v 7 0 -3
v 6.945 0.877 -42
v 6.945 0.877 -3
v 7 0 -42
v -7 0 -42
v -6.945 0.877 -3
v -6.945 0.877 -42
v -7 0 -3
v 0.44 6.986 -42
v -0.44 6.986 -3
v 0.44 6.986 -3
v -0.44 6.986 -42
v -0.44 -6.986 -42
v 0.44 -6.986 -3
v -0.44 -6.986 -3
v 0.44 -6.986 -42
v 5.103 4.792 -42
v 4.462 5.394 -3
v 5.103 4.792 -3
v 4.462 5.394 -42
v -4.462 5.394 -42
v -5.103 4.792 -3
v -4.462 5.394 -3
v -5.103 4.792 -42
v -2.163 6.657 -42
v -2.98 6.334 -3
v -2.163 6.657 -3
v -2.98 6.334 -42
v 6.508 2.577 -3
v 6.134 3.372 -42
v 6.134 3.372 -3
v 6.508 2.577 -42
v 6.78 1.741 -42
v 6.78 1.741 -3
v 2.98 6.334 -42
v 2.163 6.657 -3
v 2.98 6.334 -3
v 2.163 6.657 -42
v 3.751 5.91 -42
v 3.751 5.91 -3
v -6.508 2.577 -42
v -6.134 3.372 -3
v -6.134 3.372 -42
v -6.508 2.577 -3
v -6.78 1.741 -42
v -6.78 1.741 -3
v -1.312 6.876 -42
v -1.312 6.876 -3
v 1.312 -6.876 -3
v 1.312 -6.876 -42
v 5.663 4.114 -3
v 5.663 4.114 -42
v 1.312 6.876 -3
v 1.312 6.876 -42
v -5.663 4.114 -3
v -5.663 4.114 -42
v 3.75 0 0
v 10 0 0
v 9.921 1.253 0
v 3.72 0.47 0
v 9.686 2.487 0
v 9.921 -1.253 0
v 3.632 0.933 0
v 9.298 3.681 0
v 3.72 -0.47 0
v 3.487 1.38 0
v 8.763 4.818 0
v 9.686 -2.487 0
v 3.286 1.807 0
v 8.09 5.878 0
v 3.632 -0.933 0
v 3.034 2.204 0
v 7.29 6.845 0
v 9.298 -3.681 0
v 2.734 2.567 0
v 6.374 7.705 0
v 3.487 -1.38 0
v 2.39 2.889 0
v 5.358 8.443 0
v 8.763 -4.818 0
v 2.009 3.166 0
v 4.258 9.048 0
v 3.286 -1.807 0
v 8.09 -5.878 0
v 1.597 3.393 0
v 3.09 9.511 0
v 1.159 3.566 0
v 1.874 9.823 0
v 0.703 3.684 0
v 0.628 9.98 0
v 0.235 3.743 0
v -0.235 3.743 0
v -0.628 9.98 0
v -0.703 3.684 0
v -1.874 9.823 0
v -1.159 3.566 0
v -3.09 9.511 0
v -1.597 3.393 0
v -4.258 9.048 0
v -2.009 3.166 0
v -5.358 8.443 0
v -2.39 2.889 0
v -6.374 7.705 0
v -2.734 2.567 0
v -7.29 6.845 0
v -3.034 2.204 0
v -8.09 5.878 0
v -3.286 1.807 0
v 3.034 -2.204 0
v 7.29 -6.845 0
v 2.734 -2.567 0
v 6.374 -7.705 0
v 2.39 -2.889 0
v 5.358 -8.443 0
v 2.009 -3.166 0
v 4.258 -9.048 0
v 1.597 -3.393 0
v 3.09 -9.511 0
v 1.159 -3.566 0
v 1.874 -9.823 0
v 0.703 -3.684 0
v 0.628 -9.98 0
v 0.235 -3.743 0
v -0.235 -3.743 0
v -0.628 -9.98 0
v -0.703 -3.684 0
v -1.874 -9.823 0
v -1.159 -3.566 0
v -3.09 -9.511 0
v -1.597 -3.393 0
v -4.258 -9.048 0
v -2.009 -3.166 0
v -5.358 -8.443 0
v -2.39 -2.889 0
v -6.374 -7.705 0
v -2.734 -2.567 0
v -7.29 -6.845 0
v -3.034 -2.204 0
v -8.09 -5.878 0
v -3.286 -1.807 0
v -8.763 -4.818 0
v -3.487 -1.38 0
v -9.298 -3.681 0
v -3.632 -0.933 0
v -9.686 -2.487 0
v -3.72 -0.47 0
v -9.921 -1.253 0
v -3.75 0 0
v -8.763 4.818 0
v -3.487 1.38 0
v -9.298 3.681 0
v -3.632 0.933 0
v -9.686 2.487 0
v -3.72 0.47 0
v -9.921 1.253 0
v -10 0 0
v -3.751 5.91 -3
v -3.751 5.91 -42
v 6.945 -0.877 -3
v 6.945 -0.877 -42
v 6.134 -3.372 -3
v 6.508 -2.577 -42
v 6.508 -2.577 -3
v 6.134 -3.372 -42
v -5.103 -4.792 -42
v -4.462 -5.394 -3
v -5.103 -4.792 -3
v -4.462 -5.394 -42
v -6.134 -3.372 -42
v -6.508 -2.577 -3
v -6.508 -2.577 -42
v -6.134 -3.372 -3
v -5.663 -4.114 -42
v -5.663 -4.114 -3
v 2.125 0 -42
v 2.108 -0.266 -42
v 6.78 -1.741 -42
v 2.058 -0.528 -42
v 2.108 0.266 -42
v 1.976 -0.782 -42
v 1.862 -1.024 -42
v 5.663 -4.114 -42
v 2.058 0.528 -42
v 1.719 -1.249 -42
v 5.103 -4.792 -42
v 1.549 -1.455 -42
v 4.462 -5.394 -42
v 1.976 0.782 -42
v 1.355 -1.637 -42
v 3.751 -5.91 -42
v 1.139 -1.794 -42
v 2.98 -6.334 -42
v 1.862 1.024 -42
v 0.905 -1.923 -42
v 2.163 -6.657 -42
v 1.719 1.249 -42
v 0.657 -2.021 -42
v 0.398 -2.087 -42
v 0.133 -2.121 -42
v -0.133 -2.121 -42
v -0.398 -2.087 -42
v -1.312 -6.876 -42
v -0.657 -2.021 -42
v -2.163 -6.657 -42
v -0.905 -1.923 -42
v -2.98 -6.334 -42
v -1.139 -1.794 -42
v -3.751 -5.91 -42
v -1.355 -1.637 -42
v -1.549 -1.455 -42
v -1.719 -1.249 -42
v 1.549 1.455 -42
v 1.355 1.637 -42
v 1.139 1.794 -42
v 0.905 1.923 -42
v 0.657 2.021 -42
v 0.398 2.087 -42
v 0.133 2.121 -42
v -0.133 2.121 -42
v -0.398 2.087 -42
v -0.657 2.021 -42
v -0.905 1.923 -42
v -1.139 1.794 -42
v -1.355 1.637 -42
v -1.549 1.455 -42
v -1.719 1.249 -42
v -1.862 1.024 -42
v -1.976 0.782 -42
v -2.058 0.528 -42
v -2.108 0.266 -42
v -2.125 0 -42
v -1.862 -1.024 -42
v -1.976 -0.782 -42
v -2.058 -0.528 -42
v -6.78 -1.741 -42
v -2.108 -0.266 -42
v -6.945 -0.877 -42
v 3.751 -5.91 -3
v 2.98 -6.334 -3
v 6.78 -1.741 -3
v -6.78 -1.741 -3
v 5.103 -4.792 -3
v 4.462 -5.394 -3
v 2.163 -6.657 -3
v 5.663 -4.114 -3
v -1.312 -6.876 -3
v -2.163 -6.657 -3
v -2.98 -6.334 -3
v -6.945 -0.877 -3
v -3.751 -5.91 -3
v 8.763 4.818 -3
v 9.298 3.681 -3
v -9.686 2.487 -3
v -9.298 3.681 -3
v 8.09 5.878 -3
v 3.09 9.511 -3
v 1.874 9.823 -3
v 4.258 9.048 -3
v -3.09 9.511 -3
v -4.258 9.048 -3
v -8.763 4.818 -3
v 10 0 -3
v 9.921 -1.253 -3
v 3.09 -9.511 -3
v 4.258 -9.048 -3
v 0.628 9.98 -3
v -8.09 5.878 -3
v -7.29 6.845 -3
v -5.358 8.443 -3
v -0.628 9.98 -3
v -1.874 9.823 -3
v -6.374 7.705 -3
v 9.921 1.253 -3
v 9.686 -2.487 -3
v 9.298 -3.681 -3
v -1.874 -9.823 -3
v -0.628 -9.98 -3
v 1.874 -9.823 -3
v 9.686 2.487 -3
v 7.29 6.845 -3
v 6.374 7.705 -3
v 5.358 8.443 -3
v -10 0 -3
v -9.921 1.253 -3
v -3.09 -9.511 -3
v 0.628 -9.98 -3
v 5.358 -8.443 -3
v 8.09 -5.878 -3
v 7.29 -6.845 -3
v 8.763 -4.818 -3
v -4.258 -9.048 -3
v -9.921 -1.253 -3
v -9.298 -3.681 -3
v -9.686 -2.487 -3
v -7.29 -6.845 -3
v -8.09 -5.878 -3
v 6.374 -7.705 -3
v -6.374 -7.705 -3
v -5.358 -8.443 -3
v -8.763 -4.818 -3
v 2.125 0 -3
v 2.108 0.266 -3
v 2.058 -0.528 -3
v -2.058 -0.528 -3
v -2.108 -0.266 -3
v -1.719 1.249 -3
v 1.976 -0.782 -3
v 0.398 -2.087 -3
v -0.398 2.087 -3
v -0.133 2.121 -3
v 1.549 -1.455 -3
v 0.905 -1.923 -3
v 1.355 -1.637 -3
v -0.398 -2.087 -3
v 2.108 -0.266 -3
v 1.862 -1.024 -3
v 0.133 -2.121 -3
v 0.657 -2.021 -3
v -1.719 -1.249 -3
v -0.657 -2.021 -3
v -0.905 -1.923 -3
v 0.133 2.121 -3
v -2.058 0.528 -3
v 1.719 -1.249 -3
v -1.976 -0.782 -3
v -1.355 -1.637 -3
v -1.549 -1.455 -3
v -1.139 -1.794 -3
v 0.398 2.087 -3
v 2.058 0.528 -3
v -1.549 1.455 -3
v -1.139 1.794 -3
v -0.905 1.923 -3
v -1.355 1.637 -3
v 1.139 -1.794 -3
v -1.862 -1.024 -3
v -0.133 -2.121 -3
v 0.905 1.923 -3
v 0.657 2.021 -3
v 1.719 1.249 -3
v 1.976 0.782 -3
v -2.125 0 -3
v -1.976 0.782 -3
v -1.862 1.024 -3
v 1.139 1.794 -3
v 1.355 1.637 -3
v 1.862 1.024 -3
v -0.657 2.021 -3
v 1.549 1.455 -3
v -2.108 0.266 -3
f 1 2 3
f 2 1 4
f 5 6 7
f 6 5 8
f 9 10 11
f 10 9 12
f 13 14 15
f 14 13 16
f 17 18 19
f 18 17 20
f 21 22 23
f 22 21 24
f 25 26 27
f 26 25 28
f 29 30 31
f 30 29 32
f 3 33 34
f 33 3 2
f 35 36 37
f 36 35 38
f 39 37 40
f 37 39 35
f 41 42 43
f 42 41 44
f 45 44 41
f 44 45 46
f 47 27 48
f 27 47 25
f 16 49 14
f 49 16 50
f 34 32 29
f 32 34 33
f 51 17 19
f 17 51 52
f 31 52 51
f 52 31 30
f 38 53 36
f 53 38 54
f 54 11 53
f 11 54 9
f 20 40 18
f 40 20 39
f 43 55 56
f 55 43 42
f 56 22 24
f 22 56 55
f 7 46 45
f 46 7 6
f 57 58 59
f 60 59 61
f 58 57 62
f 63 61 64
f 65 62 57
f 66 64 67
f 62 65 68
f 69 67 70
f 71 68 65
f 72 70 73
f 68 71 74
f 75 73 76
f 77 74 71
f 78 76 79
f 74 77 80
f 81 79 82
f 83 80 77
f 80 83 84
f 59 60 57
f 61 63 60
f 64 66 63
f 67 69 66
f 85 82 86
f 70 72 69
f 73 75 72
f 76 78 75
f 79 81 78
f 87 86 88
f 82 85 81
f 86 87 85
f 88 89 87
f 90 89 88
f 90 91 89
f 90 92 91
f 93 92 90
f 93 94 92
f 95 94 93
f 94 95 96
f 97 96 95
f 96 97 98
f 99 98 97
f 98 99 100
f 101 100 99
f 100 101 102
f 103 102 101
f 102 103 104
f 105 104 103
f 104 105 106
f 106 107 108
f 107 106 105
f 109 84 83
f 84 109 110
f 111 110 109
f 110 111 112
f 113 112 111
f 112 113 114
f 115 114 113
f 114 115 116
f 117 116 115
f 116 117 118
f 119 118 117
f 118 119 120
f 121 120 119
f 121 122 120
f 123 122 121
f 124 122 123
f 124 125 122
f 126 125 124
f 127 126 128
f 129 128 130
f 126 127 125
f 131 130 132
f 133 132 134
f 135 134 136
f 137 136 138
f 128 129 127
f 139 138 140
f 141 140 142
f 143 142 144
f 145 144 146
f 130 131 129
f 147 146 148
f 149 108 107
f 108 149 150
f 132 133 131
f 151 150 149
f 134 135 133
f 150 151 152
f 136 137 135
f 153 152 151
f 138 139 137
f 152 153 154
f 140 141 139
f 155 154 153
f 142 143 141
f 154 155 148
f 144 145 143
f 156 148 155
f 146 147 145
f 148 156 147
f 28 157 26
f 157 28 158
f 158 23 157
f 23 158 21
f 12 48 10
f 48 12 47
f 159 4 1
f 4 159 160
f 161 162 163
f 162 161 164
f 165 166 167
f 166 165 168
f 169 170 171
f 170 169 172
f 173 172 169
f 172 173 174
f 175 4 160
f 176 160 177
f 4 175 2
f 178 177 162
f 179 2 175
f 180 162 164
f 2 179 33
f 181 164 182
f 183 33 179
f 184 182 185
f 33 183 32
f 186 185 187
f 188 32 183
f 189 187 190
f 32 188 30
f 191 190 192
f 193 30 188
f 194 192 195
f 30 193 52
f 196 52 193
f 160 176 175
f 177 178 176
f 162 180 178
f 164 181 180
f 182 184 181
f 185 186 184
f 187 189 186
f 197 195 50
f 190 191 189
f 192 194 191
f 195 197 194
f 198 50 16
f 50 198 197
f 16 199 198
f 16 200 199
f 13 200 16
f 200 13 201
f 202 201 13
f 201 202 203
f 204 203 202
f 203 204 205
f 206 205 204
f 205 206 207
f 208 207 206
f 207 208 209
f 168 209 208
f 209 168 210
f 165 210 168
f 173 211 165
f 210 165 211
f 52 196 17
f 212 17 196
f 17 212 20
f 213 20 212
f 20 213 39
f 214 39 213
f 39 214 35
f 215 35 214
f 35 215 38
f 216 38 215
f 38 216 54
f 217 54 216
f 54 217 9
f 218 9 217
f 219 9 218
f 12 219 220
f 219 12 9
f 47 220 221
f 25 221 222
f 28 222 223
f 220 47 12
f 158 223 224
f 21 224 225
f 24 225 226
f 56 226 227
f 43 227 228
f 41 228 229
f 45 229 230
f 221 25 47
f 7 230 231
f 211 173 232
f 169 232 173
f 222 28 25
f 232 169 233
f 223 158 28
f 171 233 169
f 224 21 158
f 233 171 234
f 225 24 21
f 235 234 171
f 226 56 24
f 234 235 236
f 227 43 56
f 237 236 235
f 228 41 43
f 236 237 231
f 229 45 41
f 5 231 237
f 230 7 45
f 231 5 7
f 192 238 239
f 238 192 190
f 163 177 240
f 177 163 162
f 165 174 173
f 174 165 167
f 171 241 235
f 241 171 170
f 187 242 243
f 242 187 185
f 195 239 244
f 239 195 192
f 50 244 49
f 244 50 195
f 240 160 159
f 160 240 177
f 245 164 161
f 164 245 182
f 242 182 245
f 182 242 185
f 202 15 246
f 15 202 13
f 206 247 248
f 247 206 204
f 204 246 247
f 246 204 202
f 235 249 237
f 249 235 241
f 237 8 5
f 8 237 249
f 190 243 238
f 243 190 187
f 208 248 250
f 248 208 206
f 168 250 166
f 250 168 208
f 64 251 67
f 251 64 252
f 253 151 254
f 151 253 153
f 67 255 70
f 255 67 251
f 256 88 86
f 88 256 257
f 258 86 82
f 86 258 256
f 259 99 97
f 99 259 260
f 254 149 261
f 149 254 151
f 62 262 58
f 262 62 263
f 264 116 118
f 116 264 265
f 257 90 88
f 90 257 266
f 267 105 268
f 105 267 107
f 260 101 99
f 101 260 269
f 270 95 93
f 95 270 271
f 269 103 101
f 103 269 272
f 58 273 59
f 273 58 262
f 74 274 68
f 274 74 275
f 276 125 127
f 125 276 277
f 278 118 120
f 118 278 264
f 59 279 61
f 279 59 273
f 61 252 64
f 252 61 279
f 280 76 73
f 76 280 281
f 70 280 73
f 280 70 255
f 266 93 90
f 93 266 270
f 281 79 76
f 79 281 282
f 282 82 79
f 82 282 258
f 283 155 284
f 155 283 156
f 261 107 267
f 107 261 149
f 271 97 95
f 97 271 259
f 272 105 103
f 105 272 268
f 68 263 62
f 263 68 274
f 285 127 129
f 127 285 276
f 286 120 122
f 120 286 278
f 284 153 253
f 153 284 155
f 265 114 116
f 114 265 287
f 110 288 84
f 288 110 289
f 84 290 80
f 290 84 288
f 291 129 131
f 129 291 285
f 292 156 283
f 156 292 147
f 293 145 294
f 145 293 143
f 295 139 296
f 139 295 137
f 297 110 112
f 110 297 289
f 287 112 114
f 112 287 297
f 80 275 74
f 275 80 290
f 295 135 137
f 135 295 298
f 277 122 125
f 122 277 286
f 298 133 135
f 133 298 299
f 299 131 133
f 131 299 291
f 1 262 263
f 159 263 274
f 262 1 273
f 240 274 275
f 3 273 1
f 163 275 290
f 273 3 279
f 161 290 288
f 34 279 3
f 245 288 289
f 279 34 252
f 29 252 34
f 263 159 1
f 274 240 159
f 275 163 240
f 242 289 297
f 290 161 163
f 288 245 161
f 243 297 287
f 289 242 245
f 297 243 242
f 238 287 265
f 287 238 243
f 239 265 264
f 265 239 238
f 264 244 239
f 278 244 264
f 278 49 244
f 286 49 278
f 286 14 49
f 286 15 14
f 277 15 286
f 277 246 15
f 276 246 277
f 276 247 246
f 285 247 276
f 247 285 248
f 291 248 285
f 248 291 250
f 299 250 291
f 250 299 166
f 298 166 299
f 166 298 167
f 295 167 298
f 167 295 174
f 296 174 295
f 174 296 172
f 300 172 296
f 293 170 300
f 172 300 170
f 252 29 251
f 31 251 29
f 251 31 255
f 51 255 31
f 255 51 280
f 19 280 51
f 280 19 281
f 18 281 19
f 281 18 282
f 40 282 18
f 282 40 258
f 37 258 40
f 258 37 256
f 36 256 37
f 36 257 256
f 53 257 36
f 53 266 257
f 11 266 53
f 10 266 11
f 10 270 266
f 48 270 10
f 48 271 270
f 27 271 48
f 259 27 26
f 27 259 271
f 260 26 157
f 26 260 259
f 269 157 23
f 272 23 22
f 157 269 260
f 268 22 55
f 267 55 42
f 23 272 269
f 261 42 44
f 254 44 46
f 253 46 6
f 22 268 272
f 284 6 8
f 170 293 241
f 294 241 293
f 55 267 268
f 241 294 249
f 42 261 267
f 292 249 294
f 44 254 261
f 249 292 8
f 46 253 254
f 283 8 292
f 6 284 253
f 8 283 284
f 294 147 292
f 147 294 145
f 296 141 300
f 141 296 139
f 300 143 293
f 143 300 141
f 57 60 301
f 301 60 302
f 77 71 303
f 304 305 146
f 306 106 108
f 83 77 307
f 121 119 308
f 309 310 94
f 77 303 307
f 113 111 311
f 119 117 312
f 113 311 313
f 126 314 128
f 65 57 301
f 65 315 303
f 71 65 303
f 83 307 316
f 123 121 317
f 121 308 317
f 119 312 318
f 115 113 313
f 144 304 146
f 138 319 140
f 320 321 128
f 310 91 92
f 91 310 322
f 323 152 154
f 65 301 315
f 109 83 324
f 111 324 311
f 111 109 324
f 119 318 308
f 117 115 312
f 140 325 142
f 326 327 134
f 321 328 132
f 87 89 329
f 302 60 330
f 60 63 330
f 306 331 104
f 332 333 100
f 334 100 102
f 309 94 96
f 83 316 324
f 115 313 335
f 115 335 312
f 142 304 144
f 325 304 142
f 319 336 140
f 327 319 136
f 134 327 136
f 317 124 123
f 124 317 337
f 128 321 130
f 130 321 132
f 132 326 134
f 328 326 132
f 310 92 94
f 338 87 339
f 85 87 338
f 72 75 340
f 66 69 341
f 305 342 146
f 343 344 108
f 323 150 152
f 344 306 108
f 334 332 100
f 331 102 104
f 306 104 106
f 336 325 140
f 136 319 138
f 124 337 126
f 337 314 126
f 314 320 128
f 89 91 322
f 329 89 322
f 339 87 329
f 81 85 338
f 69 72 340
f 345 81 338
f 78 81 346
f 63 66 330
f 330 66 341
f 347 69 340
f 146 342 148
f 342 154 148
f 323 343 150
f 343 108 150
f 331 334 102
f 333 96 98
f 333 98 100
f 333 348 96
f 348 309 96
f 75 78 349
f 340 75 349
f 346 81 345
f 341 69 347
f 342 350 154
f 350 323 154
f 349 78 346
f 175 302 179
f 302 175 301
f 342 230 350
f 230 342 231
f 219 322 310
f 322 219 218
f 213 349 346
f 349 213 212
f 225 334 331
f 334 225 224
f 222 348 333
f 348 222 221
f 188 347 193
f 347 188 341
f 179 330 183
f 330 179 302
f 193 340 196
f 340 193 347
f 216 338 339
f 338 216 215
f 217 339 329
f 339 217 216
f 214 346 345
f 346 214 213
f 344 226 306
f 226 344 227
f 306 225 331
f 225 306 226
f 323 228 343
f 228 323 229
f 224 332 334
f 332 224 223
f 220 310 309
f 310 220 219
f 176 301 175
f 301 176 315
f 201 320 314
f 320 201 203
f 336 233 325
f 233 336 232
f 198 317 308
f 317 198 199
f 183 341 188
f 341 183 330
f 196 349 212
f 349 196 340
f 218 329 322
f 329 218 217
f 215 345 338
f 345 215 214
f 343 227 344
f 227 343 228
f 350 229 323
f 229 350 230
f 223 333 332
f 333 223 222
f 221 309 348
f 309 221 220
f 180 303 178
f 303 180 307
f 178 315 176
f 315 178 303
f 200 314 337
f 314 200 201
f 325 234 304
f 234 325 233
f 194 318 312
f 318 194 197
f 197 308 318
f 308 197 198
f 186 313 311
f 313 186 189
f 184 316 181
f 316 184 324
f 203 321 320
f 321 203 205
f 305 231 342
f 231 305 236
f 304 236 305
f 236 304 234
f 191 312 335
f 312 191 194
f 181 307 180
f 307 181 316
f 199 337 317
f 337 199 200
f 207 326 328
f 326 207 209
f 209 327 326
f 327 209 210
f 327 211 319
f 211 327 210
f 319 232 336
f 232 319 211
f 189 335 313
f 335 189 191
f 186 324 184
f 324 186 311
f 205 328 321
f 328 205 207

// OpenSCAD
$fn = 50;


difference() {
	union() {
		translate(v = [0, 0, -42.0000000000]) {
			cylinder(h = 42, r = 7.0000000000);
		}
		translate(v = [0, 0, -3.0000000000]) {
			cylinder(h = 3, r = 10.0000000000);
		}
	}
	union() {
		translate(v = [0, 0, 0]) {
			rotate(a = [0, 0, 0]) {
				difference() {
					union() {
						#translate(v = [0, 0, -42.0000000000]) {
							cylinder(h = 42, r = 2.0000000000);
						}
						#translate(v = [0, 0, -3]) {
							cylinder(h = 3, r1 = 2.1250000000, r2 = 3.7500000000);
						}
						#translate(v = [0, 0, -42.0000000000]) {
							cylinder(h = 42, r = 2.1250000000);
						}
						#translate(v = [0, 0, -42.0000000000]) {
							cylinder(h = 42, r = 2.0000000000);
						}
					}
					union();
				}
			}
		}
	}
}
